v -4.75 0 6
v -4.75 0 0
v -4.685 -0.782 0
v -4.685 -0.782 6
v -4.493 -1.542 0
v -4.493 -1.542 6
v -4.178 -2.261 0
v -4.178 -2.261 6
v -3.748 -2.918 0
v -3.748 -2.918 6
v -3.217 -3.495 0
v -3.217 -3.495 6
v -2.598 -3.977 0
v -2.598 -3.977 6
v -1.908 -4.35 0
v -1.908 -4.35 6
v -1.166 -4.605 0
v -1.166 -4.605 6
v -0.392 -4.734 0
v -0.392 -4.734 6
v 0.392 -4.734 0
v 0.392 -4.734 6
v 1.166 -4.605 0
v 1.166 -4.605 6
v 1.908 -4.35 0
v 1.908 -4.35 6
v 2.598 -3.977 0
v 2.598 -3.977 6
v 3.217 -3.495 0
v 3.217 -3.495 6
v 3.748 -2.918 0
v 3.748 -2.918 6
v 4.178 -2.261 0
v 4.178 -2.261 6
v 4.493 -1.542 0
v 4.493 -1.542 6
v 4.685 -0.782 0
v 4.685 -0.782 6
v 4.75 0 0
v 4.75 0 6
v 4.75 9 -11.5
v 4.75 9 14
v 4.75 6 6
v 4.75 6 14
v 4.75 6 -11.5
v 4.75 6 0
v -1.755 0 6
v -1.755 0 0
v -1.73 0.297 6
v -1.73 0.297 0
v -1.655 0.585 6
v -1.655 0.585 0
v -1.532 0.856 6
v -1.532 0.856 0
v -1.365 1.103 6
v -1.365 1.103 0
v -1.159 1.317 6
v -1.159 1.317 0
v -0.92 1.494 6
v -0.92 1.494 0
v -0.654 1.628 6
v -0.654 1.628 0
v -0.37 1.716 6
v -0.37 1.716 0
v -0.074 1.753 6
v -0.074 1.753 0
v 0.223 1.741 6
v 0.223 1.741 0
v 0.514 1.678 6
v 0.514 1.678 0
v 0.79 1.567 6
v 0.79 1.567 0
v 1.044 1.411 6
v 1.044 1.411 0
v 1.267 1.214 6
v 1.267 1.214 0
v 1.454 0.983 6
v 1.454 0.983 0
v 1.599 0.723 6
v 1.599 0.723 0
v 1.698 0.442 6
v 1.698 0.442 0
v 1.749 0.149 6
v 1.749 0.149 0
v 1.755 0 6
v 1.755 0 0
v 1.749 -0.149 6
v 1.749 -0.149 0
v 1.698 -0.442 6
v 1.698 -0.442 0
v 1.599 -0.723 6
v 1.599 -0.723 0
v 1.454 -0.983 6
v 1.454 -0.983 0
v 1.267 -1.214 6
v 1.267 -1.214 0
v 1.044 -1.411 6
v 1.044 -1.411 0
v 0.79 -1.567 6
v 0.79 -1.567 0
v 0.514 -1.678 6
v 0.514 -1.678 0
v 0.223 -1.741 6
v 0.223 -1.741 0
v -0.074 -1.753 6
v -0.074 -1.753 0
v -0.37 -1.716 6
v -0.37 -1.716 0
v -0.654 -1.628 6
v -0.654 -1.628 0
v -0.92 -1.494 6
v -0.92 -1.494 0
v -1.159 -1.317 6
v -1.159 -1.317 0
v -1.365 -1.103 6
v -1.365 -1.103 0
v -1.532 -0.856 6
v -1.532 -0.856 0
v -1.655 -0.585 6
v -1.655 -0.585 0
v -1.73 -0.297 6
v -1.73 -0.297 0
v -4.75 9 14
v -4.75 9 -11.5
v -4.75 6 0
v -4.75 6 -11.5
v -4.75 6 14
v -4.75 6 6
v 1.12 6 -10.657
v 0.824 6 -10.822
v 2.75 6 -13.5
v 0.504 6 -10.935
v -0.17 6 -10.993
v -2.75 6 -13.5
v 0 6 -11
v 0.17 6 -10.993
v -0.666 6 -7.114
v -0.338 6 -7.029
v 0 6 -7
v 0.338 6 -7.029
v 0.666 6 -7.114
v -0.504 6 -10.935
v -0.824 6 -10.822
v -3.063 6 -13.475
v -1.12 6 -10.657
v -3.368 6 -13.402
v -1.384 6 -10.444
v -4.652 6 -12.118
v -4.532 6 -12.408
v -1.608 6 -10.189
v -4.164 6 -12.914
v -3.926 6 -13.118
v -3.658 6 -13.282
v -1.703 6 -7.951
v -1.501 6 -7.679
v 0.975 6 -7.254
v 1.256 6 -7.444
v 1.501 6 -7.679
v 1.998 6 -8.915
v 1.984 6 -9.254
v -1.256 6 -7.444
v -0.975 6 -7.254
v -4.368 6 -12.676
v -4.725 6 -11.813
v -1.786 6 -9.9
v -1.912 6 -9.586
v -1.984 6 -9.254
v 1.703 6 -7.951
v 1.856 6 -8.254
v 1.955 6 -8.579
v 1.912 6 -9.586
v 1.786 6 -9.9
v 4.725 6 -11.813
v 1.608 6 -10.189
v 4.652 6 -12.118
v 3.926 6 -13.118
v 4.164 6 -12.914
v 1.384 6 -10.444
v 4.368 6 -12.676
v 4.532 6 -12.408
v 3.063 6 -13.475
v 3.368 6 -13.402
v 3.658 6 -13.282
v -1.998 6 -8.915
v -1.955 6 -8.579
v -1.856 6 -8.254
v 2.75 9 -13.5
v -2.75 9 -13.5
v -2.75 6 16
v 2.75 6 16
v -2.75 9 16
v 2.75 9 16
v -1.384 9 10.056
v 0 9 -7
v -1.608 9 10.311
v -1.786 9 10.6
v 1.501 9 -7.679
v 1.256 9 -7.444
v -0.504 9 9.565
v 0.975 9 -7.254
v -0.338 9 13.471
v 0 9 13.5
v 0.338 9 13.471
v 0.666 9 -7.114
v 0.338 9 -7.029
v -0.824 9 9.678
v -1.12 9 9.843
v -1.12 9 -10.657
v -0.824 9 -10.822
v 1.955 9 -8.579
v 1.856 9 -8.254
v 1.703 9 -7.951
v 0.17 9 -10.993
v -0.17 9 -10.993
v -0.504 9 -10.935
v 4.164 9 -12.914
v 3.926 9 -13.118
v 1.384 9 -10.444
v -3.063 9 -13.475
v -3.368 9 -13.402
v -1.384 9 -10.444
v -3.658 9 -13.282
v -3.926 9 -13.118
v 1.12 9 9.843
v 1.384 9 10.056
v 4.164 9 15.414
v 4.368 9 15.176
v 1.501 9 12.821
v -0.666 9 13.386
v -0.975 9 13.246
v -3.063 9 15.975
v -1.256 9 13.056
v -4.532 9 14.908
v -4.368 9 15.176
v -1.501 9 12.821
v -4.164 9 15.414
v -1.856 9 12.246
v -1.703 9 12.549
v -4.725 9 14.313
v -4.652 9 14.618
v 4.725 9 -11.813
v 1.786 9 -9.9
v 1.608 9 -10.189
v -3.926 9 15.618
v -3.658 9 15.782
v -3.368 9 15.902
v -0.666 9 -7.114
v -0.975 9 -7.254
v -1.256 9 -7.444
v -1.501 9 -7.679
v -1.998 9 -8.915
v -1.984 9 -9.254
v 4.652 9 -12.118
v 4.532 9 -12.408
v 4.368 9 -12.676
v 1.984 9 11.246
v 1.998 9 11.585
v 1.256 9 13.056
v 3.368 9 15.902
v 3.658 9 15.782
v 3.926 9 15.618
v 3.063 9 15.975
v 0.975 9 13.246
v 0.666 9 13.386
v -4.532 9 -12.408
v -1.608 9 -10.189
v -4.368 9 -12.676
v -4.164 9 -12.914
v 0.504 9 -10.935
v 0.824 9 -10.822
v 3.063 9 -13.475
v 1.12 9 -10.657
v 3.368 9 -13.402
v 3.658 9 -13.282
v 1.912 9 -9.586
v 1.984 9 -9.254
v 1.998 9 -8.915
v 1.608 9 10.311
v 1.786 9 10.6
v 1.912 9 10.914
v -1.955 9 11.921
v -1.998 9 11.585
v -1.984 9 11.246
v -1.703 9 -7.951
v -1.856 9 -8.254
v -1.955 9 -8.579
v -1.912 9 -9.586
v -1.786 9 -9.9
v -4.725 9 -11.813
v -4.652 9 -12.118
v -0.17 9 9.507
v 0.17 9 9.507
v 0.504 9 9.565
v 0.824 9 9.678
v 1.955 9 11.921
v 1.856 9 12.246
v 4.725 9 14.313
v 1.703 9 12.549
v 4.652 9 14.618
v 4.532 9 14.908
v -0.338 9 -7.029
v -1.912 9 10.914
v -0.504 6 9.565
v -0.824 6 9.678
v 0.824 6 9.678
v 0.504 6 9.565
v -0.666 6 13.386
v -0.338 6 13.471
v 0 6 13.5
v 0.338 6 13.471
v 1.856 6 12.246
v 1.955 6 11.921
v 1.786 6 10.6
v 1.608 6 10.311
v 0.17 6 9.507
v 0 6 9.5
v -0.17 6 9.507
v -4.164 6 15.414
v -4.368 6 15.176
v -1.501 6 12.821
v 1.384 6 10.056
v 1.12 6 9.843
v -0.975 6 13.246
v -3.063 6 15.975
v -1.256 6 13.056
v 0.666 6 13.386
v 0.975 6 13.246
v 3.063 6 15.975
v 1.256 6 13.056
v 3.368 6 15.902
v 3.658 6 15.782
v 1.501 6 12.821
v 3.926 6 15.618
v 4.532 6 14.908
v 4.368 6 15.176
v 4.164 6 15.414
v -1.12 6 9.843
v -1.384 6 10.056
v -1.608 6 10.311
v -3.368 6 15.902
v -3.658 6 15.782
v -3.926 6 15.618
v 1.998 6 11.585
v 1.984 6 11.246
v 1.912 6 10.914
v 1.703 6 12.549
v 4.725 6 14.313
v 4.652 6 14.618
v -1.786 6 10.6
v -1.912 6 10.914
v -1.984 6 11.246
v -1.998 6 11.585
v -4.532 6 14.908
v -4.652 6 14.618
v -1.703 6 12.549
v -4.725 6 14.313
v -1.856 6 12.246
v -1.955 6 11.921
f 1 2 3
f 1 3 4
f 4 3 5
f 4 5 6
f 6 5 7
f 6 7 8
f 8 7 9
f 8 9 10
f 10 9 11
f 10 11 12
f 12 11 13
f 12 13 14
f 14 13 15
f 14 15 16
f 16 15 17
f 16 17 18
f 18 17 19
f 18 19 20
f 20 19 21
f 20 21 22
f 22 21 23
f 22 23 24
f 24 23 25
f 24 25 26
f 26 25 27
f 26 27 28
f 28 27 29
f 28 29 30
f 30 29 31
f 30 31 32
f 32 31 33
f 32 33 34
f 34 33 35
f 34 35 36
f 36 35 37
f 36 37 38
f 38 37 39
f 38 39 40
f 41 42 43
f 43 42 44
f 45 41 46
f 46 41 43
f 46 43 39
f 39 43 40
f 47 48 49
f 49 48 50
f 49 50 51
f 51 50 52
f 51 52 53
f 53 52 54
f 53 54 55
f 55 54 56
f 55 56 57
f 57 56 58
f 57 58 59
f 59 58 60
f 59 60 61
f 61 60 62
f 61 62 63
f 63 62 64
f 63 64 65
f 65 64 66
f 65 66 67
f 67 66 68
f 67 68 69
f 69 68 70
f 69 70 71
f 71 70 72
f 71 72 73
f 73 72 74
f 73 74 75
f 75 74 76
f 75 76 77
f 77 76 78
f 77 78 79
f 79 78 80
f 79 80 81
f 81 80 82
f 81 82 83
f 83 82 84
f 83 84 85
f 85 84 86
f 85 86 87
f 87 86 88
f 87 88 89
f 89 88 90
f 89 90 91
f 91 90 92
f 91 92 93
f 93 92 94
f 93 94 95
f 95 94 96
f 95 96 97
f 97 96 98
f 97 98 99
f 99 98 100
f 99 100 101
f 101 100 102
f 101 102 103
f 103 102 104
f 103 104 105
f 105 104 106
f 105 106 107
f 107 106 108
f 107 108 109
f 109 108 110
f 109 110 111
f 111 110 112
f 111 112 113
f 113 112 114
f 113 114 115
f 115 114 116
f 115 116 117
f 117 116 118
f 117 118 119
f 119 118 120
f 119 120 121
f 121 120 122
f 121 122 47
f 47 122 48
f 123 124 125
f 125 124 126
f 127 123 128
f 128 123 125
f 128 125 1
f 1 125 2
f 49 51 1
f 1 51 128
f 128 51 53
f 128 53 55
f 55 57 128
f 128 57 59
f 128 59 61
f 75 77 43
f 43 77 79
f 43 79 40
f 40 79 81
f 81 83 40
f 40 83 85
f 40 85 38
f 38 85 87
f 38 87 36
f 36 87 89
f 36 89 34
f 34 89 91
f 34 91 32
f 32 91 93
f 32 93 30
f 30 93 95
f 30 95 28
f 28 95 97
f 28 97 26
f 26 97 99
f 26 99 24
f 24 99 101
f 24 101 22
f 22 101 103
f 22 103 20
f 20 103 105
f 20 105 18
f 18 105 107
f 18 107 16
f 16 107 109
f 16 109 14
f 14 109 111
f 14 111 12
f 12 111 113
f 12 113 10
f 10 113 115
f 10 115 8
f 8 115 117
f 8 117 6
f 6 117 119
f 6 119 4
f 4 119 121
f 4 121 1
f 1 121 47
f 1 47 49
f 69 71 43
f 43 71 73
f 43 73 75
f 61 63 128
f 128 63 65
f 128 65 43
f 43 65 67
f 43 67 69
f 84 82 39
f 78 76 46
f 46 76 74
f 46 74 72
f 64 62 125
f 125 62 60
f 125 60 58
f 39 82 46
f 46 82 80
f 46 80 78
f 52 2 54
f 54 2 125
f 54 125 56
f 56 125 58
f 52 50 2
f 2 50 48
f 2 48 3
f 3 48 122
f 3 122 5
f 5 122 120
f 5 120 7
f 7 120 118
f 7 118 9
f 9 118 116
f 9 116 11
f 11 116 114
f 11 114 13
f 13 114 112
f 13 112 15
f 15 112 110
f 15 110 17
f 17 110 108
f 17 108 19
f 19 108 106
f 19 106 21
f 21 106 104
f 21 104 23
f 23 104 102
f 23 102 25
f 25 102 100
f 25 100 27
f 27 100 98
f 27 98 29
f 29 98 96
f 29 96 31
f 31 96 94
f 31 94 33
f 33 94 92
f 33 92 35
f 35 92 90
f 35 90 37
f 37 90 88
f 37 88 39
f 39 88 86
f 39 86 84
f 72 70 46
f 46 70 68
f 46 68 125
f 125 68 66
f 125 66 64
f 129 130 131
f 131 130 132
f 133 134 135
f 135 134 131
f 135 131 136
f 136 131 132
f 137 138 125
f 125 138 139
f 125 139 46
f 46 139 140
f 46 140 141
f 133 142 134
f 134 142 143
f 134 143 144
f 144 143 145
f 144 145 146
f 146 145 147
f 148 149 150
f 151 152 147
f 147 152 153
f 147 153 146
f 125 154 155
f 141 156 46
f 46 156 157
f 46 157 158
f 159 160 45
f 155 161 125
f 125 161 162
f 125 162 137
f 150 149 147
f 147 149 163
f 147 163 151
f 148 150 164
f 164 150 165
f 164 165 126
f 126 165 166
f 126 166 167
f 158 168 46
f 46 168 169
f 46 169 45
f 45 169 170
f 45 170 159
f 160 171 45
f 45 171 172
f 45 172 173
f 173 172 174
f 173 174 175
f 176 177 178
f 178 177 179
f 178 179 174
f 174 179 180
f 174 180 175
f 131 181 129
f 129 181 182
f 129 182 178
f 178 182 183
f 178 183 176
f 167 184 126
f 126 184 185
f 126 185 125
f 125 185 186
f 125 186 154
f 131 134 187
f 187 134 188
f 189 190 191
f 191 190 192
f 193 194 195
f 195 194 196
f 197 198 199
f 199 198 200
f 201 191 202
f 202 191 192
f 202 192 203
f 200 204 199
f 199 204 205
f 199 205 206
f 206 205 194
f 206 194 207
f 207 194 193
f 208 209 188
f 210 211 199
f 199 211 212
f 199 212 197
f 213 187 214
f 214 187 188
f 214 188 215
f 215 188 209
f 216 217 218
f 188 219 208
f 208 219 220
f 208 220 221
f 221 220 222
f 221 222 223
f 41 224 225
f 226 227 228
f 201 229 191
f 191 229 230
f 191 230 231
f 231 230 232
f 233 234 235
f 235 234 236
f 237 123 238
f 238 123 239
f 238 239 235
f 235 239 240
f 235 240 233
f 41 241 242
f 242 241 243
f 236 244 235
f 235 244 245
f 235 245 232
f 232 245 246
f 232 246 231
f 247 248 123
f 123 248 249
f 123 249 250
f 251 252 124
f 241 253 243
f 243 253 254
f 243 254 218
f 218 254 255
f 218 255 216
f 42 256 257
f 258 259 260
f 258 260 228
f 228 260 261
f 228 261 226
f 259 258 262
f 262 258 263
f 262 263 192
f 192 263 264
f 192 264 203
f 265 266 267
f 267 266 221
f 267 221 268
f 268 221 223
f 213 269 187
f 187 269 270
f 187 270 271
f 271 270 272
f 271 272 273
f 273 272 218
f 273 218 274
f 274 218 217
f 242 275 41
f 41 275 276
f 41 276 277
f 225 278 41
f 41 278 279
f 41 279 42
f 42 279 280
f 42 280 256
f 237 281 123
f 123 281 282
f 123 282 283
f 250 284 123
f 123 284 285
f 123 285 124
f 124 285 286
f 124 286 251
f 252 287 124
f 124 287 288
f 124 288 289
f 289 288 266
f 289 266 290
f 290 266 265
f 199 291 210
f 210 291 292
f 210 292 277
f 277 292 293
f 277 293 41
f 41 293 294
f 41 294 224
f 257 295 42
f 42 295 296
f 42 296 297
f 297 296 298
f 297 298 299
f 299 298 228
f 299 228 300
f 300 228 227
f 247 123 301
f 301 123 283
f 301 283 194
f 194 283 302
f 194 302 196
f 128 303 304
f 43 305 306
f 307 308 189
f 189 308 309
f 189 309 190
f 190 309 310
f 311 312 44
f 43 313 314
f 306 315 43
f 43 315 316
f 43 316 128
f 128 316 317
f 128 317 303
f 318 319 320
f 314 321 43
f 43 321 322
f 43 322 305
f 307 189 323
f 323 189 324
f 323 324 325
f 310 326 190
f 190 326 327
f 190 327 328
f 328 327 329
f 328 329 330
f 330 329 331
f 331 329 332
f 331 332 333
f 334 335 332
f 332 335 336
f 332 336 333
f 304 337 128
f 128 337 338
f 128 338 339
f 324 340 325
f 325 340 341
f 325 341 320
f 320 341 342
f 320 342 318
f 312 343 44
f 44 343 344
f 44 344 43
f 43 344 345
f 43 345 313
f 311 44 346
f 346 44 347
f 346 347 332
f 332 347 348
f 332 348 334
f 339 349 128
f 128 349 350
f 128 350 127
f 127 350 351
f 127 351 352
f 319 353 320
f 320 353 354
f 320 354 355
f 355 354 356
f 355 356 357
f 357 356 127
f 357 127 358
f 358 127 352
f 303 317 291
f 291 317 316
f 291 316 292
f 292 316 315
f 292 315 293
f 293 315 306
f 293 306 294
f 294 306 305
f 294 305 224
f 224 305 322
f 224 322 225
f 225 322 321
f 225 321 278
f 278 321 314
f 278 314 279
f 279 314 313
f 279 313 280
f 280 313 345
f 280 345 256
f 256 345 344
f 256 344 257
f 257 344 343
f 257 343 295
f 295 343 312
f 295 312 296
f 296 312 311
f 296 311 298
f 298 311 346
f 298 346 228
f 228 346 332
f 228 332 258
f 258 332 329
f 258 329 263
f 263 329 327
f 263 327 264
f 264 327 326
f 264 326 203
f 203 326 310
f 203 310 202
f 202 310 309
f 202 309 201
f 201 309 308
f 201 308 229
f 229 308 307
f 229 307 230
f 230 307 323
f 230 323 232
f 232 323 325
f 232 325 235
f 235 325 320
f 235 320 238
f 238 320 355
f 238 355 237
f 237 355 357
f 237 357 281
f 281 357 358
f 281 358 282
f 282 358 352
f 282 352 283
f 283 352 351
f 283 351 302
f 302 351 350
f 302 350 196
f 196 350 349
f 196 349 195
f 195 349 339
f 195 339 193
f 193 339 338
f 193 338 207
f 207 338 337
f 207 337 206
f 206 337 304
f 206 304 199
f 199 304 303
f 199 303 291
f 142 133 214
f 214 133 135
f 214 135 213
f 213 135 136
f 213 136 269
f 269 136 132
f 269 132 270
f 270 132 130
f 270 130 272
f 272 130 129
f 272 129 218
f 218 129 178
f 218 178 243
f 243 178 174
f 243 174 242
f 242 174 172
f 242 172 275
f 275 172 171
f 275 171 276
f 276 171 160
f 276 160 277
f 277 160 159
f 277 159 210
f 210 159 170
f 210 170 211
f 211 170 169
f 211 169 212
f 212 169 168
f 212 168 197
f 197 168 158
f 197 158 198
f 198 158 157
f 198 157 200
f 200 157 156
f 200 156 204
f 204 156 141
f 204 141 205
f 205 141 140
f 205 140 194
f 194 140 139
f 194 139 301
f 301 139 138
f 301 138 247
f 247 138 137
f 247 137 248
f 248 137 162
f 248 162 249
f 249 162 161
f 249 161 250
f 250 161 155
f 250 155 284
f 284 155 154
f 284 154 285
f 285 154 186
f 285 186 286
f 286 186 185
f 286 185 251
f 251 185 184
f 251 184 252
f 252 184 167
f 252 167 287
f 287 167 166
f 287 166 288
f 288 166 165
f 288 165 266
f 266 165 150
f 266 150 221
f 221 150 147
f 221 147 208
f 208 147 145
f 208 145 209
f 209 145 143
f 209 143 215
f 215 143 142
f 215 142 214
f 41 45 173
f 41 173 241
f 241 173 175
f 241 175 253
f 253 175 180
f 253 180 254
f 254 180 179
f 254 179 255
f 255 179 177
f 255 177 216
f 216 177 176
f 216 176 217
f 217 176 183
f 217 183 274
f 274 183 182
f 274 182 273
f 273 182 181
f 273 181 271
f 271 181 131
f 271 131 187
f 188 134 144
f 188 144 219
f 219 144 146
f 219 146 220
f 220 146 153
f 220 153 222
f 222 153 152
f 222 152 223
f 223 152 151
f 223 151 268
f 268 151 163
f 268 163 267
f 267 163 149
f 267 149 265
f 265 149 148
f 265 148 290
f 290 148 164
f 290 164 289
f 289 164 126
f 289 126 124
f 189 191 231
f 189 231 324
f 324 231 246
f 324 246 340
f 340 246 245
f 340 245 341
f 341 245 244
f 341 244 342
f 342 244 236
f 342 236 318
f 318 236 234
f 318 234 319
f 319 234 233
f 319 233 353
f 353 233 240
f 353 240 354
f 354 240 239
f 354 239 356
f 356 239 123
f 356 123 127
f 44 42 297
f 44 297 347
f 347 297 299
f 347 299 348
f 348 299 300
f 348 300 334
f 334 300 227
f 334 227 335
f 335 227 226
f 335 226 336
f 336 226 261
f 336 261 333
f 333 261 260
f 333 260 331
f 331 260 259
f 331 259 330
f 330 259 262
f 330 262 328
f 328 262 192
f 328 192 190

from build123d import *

# Parameters (mm, degrees)
SKETCH2_R           = 1.755
BOSS_EXTRUDE1_DEPTH = 6
SKETCH3_W           = 9.5
SKETCH3_H           = 29.5
BOSS_EXTRUDE2_DEPTH = 3
SKETCH4_R           = 2
CUT_EXTRUDE1_DEPTH  = 22.624638725
FILLET1_R           = 2


with BuildPart() as part:
    # Sketch2 → Boss-Extrude1 (new body)
    with BuildSketch(Plane.XY):
        with BuildLine():
            Line((-4.75, 6), (-4.75, 0))
            ThreePointArc((-4.75, 0), (0, -4.75), (4.75, 0))
            Line((4.75, 0), (4.75, 6))
            Line((4.75, 6), (-4.75, 6))
        make_face()
        Circle(SKETCH2_R, mode=Mode.SUBTRACT)
    extrude(amount=BOSS_EXTRUDE1_DEPTH)

    # Sketch3 → Boss-Extrude2 (add)
    with BuildSketch(Plane(origin=(0, 6, 0), x_dir=(1, 0, 0), z_dir=(0, 1, 0))):
        with Locations((0, -1.25)):
            Rectangle(SKETCH3_W, SKETCH3_H)
    extrude(amount=BOSS_EXTRUDE2_DEPTH)

    # Sketch4 → Cut-Extrude1 (cut, through all)
    with BuildSketch(Plane(origin=(0, 9, 0), x_dir=(1, 0, 0), z_dir=(0, 1, 0))):
        with Locations(Location((0, -11.5, 0), (0, 0, 270))):
            Circle(SKETCH4_R)
        with Locations(Location((0, 9, 0), (0, 0, 270))):
            Circle(SKETCH4_R)
    extrude(amount=-CUT_EXTRUDE1_DEPTH, mode=Mode.SUBTRACT)

    # Fillet1
    fillet1_edges = [part.edges().sort_by_distance(p)[0] for p in [
        (4.75, 7.5, -13.5),
        (-4.75, 7.5, -13.5),
        (-4.75, 7.5, 16),
        (4.75, 7.5, 16),
    ]]
    fillet(fillet1_edges, radius=FILLET1_R)


solid = part.part
